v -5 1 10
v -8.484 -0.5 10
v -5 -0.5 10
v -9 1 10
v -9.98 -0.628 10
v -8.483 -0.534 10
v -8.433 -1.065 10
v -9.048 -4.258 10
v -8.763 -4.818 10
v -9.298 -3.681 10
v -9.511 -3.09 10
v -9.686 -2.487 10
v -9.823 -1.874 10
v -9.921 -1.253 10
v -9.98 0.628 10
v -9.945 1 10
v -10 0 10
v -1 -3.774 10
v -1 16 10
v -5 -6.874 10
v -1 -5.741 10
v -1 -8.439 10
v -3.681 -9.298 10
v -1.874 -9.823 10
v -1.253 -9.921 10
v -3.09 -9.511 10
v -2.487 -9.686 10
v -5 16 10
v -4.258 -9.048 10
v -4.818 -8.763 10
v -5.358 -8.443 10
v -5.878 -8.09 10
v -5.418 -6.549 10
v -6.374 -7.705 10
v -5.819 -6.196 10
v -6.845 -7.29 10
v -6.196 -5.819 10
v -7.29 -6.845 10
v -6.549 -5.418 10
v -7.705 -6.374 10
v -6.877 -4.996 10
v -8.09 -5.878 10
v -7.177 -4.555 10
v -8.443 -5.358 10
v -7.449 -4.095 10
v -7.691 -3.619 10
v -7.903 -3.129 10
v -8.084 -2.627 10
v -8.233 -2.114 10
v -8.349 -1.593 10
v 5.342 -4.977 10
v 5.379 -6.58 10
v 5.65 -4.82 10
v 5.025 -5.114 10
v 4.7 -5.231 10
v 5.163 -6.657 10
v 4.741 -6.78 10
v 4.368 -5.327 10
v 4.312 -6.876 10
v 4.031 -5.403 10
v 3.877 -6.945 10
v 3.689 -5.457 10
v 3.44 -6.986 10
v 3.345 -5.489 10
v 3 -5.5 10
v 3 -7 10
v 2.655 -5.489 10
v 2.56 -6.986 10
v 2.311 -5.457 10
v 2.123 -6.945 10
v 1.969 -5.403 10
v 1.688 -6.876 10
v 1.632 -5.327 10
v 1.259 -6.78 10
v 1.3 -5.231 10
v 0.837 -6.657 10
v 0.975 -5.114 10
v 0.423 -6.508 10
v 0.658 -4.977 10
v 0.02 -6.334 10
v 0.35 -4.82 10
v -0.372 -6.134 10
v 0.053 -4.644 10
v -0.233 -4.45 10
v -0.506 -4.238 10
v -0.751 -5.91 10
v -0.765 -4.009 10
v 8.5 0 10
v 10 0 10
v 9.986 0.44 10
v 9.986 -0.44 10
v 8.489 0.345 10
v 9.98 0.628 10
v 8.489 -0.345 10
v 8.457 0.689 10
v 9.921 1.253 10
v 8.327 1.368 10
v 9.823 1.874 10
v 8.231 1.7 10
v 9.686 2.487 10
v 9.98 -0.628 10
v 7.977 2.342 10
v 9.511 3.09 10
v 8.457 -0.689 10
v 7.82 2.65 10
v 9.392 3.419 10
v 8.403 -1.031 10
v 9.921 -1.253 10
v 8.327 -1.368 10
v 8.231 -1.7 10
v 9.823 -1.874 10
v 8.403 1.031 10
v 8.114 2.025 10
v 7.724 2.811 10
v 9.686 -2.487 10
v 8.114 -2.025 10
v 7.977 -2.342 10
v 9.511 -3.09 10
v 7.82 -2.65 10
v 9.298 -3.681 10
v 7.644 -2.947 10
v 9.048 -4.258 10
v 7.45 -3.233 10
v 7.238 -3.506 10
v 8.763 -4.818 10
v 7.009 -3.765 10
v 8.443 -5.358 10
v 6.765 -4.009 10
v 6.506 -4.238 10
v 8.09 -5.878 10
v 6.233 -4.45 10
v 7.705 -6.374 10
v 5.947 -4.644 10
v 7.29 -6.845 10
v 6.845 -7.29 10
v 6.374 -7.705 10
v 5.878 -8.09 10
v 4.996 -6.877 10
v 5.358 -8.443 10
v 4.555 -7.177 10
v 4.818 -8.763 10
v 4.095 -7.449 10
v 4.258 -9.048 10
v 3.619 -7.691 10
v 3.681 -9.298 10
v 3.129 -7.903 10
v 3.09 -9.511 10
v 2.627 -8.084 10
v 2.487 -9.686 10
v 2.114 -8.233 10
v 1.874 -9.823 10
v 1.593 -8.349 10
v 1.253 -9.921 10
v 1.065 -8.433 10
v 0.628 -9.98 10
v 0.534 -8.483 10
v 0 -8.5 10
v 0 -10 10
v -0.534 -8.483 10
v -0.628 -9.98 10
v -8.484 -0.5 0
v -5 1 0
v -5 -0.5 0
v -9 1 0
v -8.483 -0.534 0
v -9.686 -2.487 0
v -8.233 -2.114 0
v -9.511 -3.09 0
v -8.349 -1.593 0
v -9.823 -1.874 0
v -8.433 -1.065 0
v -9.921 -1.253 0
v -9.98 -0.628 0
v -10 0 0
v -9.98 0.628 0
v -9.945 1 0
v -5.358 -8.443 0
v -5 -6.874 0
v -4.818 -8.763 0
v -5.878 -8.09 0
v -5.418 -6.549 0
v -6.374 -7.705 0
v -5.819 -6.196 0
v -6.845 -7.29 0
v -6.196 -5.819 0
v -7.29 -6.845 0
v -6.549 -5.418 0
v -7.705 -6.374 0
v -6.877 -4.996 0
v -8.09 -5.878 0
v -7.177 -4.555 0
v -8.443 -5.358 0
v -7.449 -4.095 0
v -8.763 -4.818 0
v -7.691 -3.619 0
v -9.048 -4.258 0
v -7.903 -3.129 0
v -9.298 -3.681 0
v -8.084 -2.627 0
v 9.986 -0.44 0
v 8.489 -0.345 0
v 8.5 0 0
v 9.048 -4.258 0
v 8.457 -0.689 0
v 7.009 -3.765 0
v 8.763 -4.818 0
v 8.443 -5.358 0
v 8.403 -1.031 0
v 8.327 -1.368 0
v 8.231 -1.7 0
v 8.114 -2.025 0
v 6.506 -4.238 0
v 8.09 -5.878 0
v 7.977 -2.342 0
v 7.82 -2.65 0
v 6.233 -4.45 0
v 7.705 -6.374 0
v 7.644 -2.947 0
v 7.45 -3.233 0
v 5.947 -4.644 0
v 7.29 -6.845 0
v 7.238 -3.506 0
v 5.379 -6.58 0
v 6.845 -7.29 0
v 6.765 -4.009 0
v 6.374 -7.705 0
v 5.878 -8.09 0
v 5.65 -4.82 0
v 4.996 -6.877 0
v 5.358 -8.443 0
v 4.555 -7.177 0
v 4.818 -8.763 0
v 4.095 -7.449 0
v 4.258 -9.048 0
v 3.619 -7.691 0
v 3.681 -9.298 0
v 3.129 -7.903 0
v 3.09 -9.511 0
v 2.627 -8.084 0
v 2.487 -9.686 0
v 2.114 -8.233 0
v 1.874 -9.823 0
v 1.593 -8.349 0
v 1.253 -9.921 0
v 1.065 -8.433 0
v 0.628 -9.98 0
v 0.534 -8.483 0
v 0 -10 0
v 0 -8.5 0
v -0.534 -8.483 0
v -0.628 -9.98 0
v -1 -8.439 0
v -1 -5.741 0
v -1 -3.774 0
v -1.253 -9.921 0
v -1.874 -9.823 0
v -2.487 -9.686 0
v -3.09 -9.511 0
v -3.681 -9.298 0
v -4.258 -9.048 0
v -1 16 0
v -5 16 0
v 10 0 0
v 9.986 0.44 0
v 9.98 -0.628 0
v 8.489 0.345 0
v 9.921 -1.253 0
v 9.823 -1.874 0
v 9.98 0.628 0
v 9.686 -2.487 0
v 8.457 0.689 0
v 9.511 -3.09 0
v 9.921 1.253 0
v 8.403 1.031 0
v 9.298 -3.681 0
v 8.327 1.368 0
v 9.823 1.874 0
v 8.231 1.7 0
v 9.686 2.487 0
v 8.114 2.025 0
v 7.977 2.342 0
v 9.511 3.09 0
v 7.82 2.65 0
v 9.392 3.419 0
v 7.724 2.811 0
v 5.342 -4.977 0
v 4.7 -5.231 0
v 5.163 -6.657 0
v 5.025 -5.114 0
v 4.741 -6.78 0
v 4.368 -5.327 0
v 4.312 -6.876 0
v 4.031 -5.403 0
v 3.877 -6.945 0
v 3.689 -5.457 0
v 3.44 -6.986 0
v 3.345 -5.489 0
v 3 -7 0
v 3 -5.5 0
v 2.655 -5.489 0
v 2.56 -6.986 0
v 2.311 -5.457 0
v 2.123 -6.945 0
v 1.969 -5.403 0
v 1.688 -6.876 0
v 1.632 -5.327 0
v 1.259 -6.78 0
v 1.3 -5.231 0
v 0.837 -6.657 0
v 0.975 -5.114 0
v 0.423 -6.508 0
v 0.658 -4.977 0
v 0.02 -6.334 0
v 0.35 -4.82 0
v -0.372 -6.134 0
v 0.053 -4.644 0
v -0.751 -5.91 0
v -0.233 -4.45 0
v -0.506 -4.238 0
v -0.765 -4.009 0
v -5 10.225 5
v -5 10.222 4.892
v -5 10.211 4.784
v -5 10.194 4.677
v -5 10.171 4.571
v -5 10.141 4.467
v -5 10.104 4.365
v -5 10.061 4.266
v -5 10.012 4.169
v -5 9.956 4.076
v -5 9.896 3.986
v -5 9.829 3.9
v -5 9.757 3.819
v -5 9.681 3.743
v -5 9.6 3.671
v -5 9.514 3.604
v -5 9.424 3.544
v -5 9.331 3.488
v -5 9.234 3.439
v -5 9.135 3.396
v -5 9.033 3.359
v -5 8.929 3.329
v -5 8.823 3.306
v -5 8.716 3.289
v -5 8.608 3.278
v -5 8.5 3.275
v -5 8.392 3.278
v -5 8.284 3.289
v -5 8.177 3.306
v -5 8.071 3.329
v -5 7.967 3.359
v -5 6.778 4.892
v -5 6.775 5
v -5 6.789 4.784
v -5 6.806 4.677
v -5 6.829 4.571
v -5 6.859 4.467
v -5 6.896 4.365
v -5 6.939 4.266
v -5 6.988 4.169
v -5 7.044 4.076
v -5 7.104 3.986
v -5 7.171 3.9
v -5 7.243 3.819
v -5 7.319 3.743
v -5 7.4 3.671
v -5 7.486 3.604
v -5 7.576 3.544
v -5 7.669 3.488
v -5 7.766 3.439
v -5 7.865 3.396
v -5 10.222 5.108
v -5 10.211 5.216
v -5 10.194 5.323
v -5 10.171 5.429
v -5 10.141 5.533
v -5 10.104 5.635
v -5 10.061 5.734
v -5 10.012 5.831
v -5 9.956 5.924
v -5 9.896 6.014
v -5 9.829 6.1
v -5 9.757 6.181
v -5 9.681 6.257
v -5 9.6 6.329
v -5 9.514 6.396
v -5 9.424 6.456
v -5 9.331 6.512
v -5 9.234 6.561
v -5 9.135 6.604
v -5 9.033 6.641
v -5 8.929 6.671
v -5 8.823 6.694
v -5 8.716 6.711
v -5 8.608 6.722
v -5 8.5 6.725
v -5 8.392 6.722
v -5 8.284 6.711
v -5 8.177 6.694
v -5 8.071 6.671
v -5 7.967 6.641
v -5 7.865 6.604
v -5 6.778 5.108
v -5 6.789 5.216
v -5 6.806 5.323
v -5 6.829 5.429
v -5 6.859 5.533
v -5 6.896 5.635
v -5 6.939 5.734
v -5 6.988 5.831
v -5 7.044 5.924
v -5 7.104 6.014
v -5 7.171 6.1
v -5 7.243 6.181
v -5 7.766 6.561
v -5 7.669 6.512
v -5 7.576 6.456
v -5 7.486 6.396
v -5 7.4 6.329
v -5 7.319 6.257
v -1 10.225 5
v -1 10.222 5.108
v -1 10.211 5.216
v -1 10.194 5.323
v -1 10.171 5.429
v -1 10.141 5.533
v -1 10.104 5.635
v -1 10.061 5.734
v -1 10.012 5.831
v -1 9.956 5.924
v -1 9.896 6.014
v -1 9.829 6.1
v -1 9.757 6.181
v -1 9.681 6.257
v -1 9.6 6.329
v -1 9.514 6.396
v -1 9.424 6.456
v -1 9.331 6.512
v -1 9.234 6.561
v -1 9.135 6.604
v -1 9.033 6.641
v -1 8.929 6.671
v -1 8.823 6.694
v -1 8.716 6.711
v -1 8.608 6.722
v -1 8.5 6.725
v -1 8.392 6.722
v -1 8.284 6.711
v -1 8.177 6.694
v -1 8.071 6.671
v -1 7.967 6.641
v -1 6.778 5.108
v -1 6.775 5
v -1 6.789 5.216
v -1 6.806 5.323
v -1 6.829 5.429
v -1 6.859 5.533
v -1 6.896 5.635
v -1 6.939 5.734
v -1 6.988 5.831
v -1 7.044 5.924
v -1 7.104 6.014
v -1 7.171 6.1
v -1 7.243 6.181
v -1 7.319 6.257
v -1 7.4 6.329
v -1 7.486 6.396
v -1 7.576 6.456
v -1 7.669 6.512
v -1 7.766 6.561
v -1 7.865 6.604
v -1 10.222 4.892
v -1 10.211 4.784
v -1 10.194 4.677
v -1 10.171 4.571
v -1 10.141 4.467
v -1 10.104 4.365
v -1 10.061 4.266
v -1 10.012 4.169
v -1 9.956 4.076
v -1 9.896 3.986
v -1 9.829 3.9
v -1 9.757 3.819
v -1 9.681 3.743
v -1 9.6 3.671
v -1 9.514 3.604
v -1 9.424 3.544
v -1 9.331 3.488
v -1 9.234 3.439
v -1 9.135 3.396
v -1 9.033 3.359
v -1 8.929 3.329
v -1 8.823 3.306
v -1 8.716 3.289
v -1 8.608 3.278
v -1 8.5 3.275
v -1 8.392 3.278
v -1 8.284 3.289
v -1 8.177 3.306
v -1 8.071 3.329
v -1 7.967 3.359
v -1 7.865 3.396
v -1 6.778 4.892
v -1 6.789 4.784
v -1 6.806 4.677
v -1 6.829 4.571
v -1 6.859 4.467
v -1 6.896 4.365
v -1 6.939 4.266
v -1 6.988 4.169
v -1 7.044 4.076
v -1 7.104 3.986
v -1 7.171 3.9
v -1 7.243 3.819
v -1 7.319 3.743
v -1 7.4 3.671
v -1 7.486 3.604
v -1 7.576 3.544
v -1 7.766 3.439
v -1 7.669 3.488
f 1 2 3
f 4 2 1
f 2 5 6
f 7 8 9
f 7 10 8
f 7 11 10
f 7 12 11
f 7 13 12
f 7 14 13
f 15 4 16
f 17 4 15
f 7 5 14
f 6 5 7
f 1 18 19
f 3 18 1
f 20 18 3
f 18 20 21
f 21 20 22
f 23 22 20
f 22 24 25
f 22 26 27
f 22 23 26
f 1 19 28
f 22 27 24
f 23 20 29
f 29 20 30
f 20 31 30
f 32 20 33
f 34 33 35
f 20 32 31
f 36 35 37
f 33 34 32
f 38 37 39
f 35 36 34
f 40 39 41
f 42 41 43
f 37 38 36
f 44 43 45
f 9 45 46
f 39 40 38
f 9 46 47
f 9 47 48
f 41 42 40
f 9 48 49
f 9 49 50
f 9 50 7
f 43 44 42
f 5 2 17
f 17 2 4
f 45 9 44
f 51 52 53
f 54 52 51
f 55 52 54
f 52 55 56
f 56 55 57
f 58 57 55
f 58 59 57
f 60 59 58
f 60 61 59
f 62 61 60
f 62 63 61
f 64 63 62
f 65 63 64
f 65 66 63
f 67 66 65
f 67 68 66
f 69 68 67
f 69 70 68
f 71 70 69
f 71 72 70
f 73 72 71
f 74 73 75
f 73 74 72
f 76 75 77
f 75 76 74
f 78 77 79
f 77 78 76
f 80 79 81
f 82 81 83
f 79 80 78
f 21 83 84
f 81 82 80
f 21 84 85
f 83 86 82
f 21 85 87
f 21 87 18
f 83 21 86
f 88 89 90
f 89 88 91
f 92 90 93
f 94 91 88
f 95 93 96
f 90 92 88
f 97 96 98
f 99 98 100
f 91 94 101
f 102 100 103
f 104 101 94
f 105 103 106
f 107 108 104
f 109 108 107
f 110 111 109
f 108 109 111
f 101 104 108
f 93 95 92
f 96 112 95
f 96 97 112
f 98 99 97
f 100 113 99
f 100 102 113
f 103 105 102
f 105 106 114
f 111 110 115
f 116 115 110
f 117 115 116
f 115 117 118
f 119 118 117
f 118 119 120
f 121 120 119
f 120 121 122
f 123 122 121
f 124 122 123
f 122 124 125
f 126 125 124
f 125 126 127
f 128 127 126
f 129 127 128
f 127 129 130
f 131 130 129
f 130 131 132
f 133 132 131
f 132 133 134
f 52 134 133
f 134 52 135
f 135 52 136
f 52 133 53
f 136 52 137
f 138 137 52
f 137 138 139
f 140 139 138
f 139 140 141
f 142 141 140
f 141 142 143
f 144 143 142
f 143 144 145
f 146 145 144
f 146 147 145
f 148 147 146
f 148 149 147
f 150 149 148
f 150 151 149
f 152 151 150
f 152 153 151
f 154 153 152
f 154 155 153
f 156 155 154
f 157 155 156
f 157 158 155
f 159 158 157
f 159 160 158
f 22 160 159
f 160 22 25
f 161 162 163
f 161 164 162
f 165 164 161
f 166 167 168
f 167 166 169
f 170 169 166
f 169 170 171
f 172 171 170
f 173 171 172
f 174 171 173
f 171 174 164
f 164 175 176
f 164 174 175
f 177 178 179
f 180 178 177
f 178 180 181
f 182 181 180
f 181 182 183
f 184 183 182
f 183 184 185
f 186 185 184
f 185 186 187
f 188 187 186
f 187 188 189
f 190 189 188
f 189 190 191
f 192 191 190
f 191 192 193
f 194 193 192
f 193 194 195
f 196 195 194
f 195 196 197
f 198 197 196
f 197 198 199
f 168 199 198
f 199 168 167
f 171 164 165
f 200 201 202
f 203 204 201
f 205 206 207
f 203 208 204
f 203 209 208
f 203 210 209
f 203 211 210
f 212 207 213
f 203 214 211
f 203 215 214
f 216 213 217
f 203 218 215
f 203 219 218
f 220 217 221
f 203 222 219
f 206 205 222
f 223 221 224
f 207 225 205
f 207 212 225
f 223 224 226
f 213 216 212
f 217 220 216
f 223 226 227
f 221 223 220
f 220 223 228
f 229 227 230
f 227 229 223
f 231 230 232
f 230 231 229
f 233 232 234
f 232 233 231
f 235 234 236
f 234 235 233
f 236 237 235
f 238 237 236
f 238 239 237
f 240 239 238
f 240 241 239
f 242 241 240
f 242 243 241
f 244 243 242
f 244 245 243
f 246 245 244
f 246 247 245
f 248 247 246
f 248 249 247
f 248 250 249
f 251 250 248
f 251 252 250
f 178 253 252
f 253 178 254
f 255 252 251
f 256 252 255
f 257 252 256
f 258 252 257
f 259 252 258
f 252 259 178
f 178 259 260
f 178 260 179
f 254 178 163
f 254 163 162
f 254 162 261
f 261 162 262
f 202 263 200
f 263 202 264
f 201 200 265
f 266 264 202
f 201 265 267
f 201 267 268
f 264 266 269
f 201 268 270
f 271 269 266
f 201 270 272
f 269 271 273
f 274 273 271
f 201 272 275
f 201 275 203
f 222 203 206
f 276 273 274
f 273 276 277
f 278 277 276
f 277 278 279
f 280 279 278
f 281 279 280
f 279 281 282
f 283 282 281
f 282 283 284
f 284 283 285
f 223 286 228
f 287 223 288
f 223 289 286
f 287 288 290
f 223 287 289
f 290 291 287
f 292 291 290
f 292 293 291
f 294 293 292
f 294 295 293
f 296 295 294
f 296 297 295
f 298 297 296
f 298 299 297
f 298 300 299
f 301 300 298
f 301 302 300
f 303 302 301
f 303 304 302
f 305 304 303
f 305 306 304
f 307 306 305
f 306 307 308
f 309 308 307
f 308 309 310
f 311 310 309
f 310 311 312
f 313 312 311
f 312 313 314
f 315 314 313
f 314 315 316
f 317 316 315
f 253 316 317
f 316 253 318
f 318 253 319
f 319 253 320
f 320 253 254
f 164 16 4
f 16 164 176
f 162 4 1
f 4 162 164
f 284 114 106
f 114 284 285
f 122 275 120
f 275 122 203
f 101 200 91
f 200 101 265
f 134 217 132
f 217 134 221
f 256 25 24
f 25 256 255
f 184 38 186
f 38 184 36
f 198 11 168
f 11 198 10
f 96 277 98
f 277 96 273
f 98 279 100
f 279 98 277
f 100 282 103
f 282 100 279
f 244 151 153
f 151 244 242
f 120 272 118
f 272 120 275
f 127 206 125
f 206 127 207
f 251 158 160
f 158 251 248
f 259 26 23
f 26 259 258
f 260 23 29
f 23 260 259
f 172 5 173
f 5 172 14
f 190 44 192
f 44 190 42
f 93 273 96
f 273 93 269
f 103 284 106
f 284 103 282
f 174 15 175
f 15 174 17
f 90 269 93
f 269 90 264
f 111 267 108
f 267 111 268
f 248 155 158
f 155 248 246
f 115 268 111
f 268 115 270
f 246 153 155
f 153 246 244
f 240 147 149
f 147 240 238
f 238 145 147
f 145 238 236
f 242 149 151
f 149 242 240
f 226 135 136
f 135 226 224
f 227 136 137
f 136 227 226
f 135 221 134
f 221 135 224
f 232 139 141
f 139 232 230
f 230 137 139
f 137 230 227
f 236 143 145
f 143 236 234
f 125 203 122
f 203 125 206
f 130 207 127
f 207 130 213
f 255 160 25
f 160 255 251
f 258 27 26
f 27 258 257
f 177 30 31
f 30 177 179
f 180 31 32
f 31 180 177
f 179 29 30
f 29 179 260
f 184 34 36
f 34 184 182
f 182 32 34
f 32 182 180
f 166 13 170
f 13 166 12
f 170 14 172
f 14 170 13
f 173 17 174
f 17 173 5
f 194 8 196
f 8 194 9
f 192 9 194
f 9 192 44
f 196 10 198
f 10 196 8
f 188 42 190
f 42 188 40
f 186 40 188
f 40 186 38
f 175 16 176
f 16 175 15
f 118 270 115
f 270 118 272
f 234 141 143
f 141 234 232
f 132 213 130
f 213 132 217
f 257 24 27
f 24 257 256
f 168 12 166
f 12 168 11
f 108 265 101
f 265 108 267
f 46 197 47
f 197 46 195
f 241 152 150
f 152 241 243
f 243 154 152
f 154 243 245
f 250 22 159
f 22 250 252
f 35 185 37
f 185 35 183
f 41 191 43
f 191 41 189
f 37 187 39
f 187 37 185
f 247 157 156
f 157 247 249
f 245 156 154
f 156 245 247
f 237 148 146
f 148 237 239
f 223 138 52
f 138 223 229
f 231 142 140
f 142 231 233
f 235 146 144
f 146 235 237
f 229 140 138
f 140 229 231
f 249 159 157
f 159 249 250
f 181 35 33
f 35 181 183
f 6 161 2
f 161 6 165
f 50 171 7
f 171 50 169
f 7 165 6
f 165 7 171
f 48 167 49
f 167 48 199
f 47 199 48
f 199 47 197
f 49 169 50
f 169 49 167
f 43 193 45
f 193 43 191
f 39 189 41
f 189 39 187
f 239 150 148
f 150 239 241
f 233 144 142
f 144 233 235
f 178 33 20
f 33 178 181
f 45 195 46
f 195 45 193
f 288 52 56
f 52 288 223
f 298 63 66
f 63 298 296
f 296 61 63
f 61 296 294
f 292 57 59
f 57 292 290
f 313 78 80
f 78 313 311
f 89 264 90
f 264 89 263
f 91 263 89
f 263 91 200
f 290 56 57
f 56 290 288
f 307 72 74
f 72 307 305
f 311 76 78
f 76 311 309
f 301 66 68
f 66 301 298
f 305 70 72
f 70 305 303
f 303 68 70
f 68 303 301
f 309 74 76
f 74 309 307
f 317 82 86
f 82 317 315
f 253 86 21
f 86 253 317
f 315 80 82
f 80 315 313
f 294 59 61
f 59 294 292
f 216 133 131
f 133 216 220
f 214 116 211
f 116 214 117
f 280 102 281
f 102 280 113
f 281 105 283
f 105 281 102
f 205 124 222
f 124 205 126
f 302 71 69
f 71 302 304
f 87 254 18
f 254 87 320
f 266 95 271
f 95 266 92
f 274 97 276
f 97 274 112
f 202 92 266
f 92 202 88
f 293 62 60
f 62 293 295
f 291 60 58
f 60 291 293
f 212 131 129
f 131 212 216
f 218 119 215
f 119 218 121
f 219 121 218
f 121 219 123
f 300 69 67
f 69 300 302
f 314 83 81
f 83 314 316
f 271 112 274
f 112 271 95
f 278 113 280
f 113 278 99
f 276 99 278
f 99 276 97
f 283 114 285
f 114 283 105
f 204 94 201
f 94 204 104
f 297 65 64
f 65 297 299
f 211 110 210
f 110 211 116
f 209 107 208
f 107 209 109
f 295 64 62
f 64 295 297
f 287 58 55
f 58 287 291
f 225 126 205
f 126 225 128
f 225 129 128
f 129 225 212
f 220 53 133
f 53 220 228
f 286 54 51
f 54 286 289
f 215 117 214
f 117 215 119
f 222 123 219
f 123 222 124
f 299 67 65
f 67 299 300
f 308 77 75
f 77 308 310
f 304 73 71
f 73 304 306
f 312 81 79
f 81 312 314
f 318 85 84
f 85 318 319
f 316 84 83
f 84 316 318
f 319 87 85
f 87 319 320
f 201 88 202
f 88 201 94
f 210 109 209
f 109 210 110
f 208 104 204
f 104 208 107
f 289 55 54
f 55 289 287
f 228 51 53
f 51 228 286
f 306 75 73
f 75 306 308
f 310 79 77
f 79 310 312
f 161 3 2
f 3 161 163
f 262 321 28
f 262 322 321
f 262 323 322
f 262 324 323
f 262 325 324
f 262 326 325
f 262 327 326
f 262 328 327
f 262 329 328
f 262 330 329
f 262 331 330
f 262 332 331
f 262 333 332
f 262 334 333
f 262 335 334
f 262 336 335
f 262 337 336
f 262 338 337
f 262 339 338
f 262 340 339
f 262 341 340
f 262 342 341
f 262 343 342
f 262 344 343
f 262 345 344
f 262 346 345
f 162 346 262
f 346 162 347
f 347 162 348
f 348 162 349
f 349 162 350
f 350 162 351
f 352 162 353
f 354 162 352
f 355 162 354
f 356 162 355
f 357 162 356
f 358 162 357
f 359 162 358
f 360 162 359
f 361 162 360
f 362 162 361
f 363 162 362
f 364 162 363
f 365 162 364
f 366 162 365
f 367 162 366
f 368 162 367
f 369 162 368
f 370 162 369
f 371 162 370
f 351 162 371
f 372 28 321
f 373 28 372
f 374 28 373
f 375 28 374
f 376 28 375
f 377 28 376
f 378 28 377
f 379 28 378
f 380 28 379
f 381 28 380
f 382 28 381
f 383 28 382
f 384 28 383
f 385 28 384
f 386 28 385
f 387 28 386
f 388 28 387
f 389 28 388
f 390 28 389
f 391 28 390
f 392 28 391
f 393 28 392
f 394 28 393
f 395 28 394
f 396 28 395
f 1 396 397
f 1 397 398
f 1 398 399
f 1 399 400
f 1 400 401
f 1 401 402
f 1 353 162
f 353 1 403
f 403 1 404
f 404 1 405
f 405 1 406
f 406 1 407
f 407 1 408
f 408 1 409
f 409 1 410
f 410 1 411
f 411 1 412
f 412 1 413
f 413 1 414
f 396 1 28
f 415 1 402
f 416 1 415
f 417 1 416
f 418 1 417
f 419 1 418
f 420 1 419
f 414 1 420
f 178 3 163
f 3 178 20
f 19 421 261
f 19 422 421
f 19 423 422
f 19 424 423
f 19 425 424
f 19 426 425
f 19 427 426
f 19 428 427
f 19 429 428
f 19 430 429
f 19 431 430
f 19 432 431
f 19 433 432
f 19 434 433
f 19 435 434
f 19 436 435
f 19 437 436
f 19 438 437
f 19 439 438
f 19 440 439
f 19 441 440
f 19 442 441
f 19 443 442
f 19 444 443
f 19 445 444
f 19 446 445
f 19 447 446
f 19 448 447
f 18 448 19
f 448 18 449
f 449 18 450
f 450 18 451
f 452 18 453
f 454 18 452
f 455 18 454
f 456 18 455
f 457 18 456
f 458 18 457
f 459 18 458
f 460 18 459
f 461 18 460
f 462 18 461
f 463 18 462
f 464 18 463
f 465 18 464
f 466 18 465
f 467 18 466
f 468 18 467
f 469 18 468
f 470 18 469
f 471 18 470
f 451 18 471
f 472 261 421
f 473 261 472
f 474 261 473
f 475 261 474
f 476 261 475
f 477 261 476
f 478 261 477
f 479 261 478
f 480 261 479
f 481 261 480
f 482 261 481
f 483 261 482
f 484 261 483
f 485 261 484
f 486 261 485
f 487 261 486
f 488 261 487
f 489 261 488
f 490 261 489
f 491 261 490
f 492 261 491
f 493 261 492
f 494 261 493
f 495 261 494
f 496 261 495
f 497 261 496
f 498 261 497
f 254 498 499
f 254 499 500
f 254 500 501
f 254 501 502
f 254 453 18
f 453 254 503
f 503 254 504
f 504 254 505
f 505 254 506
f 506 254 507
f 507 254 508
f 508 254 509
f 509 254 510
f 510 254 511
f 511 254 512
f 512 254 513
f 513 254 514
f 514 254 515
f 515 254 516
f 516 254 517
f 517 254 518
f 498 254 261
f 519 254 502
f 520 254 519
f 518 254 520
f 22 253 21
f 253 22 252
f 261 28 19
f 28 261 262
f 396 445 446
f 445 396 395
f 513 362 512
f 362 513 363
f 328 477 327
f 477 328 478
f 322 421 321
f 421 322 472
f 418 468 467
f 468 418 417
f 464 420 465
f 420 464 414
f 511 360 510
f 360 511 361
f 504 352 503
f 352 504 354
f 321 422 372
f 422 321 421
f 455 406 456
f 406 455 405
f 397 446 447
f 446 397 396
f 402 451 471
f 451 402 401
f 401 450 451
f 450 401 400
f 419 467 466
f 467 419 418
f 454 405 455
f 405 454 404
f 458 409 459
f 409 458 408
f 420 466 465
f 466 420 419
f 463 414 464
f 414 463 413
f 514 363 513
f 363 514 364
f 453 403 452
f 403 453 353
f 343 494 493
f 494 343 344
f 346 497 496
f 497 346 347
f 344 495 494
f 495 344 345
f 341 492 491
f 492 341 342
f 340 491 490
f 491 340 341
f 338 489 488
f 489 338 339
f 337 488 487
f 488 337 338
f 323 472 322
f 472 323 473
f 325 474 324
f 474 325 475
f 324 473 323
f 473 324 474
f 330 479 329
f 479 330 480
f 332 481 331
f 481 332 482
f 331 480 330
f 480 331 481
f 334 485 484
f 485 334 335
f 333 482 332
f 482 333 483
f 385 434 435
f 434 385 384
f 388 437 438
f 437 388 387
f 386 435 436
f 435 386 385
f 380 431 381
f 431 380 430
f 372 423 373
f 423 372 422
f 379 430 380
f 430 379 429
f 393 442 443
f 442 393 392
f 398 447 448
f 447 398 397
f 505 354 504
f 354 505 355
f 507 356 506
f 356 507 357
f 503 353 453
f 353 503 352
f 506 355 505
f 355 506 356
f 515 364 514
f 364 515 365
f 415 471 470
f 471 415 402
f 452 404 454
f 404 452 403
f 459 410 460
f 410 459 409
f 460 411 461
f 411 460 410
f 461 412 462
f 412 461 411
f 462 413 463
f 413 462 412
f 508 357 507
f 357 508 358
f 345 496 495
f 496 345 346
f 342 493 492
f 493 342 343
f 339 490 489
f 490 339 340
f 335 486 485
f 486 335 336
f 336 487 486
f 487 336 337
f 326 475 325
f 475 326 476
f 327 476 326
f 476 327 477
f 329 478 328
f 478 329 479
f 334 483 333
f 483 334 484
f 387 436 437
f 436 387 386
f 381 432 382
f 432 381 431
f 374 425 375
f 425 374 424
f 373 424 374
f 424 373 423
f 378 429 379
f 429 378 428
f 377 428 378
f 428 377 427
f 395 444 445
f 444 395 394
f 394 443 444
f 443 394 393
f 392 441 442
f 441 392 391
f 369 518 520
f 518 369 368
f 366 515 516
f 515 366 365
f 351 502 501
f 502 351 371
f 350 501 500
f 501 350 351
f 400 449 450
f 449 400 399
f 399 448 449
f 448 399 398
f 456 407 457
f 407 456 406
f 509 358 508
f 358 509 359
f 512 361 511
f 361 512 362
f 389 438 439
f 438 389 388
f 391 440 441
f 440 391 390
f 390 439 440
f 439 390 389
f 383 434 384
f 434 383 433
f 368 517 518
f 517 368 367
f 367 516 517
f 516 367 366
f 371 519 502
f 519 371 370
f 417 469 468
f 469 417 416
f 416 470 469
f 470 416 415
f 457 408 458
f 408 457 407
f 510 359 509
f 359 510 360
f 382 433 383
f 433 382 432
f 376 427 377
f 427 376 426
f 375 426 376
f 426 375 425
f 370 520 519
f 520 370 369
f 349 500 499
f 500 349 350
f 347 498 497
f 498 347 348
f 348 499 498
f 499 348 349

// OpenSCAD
$fn=100;

difference() {
  union() {
    difference() {
      union() {
        difference() {
          cylinder(r=10, h=10);
          cylinder(r=8.5, h=10);
        }
        difference() {
          translate([3, 0, 0]) cylinder(r=7, h=10);
          translate([3, 0, 0]) cylinder(r=5.5, h=10);
        }
      }
      union() {
        translate([-10, 1,0]) cube([10, 10, 10]);
        translate([0, 0, 0]) rotate([0, 0, 20]) cube([30, 20, 10]);
      };
    };
    translate([-9, -0.5, 0]) cube([5, 1.5, 10]);
    translate([-5, -8.6, 0]) cube([4, 8.6+1+15, 10]);
  };
  translate([-1, 8.5, 5]) rotate([0, -90, 0]) cylinder(r=3.45/2, h=4);
};
